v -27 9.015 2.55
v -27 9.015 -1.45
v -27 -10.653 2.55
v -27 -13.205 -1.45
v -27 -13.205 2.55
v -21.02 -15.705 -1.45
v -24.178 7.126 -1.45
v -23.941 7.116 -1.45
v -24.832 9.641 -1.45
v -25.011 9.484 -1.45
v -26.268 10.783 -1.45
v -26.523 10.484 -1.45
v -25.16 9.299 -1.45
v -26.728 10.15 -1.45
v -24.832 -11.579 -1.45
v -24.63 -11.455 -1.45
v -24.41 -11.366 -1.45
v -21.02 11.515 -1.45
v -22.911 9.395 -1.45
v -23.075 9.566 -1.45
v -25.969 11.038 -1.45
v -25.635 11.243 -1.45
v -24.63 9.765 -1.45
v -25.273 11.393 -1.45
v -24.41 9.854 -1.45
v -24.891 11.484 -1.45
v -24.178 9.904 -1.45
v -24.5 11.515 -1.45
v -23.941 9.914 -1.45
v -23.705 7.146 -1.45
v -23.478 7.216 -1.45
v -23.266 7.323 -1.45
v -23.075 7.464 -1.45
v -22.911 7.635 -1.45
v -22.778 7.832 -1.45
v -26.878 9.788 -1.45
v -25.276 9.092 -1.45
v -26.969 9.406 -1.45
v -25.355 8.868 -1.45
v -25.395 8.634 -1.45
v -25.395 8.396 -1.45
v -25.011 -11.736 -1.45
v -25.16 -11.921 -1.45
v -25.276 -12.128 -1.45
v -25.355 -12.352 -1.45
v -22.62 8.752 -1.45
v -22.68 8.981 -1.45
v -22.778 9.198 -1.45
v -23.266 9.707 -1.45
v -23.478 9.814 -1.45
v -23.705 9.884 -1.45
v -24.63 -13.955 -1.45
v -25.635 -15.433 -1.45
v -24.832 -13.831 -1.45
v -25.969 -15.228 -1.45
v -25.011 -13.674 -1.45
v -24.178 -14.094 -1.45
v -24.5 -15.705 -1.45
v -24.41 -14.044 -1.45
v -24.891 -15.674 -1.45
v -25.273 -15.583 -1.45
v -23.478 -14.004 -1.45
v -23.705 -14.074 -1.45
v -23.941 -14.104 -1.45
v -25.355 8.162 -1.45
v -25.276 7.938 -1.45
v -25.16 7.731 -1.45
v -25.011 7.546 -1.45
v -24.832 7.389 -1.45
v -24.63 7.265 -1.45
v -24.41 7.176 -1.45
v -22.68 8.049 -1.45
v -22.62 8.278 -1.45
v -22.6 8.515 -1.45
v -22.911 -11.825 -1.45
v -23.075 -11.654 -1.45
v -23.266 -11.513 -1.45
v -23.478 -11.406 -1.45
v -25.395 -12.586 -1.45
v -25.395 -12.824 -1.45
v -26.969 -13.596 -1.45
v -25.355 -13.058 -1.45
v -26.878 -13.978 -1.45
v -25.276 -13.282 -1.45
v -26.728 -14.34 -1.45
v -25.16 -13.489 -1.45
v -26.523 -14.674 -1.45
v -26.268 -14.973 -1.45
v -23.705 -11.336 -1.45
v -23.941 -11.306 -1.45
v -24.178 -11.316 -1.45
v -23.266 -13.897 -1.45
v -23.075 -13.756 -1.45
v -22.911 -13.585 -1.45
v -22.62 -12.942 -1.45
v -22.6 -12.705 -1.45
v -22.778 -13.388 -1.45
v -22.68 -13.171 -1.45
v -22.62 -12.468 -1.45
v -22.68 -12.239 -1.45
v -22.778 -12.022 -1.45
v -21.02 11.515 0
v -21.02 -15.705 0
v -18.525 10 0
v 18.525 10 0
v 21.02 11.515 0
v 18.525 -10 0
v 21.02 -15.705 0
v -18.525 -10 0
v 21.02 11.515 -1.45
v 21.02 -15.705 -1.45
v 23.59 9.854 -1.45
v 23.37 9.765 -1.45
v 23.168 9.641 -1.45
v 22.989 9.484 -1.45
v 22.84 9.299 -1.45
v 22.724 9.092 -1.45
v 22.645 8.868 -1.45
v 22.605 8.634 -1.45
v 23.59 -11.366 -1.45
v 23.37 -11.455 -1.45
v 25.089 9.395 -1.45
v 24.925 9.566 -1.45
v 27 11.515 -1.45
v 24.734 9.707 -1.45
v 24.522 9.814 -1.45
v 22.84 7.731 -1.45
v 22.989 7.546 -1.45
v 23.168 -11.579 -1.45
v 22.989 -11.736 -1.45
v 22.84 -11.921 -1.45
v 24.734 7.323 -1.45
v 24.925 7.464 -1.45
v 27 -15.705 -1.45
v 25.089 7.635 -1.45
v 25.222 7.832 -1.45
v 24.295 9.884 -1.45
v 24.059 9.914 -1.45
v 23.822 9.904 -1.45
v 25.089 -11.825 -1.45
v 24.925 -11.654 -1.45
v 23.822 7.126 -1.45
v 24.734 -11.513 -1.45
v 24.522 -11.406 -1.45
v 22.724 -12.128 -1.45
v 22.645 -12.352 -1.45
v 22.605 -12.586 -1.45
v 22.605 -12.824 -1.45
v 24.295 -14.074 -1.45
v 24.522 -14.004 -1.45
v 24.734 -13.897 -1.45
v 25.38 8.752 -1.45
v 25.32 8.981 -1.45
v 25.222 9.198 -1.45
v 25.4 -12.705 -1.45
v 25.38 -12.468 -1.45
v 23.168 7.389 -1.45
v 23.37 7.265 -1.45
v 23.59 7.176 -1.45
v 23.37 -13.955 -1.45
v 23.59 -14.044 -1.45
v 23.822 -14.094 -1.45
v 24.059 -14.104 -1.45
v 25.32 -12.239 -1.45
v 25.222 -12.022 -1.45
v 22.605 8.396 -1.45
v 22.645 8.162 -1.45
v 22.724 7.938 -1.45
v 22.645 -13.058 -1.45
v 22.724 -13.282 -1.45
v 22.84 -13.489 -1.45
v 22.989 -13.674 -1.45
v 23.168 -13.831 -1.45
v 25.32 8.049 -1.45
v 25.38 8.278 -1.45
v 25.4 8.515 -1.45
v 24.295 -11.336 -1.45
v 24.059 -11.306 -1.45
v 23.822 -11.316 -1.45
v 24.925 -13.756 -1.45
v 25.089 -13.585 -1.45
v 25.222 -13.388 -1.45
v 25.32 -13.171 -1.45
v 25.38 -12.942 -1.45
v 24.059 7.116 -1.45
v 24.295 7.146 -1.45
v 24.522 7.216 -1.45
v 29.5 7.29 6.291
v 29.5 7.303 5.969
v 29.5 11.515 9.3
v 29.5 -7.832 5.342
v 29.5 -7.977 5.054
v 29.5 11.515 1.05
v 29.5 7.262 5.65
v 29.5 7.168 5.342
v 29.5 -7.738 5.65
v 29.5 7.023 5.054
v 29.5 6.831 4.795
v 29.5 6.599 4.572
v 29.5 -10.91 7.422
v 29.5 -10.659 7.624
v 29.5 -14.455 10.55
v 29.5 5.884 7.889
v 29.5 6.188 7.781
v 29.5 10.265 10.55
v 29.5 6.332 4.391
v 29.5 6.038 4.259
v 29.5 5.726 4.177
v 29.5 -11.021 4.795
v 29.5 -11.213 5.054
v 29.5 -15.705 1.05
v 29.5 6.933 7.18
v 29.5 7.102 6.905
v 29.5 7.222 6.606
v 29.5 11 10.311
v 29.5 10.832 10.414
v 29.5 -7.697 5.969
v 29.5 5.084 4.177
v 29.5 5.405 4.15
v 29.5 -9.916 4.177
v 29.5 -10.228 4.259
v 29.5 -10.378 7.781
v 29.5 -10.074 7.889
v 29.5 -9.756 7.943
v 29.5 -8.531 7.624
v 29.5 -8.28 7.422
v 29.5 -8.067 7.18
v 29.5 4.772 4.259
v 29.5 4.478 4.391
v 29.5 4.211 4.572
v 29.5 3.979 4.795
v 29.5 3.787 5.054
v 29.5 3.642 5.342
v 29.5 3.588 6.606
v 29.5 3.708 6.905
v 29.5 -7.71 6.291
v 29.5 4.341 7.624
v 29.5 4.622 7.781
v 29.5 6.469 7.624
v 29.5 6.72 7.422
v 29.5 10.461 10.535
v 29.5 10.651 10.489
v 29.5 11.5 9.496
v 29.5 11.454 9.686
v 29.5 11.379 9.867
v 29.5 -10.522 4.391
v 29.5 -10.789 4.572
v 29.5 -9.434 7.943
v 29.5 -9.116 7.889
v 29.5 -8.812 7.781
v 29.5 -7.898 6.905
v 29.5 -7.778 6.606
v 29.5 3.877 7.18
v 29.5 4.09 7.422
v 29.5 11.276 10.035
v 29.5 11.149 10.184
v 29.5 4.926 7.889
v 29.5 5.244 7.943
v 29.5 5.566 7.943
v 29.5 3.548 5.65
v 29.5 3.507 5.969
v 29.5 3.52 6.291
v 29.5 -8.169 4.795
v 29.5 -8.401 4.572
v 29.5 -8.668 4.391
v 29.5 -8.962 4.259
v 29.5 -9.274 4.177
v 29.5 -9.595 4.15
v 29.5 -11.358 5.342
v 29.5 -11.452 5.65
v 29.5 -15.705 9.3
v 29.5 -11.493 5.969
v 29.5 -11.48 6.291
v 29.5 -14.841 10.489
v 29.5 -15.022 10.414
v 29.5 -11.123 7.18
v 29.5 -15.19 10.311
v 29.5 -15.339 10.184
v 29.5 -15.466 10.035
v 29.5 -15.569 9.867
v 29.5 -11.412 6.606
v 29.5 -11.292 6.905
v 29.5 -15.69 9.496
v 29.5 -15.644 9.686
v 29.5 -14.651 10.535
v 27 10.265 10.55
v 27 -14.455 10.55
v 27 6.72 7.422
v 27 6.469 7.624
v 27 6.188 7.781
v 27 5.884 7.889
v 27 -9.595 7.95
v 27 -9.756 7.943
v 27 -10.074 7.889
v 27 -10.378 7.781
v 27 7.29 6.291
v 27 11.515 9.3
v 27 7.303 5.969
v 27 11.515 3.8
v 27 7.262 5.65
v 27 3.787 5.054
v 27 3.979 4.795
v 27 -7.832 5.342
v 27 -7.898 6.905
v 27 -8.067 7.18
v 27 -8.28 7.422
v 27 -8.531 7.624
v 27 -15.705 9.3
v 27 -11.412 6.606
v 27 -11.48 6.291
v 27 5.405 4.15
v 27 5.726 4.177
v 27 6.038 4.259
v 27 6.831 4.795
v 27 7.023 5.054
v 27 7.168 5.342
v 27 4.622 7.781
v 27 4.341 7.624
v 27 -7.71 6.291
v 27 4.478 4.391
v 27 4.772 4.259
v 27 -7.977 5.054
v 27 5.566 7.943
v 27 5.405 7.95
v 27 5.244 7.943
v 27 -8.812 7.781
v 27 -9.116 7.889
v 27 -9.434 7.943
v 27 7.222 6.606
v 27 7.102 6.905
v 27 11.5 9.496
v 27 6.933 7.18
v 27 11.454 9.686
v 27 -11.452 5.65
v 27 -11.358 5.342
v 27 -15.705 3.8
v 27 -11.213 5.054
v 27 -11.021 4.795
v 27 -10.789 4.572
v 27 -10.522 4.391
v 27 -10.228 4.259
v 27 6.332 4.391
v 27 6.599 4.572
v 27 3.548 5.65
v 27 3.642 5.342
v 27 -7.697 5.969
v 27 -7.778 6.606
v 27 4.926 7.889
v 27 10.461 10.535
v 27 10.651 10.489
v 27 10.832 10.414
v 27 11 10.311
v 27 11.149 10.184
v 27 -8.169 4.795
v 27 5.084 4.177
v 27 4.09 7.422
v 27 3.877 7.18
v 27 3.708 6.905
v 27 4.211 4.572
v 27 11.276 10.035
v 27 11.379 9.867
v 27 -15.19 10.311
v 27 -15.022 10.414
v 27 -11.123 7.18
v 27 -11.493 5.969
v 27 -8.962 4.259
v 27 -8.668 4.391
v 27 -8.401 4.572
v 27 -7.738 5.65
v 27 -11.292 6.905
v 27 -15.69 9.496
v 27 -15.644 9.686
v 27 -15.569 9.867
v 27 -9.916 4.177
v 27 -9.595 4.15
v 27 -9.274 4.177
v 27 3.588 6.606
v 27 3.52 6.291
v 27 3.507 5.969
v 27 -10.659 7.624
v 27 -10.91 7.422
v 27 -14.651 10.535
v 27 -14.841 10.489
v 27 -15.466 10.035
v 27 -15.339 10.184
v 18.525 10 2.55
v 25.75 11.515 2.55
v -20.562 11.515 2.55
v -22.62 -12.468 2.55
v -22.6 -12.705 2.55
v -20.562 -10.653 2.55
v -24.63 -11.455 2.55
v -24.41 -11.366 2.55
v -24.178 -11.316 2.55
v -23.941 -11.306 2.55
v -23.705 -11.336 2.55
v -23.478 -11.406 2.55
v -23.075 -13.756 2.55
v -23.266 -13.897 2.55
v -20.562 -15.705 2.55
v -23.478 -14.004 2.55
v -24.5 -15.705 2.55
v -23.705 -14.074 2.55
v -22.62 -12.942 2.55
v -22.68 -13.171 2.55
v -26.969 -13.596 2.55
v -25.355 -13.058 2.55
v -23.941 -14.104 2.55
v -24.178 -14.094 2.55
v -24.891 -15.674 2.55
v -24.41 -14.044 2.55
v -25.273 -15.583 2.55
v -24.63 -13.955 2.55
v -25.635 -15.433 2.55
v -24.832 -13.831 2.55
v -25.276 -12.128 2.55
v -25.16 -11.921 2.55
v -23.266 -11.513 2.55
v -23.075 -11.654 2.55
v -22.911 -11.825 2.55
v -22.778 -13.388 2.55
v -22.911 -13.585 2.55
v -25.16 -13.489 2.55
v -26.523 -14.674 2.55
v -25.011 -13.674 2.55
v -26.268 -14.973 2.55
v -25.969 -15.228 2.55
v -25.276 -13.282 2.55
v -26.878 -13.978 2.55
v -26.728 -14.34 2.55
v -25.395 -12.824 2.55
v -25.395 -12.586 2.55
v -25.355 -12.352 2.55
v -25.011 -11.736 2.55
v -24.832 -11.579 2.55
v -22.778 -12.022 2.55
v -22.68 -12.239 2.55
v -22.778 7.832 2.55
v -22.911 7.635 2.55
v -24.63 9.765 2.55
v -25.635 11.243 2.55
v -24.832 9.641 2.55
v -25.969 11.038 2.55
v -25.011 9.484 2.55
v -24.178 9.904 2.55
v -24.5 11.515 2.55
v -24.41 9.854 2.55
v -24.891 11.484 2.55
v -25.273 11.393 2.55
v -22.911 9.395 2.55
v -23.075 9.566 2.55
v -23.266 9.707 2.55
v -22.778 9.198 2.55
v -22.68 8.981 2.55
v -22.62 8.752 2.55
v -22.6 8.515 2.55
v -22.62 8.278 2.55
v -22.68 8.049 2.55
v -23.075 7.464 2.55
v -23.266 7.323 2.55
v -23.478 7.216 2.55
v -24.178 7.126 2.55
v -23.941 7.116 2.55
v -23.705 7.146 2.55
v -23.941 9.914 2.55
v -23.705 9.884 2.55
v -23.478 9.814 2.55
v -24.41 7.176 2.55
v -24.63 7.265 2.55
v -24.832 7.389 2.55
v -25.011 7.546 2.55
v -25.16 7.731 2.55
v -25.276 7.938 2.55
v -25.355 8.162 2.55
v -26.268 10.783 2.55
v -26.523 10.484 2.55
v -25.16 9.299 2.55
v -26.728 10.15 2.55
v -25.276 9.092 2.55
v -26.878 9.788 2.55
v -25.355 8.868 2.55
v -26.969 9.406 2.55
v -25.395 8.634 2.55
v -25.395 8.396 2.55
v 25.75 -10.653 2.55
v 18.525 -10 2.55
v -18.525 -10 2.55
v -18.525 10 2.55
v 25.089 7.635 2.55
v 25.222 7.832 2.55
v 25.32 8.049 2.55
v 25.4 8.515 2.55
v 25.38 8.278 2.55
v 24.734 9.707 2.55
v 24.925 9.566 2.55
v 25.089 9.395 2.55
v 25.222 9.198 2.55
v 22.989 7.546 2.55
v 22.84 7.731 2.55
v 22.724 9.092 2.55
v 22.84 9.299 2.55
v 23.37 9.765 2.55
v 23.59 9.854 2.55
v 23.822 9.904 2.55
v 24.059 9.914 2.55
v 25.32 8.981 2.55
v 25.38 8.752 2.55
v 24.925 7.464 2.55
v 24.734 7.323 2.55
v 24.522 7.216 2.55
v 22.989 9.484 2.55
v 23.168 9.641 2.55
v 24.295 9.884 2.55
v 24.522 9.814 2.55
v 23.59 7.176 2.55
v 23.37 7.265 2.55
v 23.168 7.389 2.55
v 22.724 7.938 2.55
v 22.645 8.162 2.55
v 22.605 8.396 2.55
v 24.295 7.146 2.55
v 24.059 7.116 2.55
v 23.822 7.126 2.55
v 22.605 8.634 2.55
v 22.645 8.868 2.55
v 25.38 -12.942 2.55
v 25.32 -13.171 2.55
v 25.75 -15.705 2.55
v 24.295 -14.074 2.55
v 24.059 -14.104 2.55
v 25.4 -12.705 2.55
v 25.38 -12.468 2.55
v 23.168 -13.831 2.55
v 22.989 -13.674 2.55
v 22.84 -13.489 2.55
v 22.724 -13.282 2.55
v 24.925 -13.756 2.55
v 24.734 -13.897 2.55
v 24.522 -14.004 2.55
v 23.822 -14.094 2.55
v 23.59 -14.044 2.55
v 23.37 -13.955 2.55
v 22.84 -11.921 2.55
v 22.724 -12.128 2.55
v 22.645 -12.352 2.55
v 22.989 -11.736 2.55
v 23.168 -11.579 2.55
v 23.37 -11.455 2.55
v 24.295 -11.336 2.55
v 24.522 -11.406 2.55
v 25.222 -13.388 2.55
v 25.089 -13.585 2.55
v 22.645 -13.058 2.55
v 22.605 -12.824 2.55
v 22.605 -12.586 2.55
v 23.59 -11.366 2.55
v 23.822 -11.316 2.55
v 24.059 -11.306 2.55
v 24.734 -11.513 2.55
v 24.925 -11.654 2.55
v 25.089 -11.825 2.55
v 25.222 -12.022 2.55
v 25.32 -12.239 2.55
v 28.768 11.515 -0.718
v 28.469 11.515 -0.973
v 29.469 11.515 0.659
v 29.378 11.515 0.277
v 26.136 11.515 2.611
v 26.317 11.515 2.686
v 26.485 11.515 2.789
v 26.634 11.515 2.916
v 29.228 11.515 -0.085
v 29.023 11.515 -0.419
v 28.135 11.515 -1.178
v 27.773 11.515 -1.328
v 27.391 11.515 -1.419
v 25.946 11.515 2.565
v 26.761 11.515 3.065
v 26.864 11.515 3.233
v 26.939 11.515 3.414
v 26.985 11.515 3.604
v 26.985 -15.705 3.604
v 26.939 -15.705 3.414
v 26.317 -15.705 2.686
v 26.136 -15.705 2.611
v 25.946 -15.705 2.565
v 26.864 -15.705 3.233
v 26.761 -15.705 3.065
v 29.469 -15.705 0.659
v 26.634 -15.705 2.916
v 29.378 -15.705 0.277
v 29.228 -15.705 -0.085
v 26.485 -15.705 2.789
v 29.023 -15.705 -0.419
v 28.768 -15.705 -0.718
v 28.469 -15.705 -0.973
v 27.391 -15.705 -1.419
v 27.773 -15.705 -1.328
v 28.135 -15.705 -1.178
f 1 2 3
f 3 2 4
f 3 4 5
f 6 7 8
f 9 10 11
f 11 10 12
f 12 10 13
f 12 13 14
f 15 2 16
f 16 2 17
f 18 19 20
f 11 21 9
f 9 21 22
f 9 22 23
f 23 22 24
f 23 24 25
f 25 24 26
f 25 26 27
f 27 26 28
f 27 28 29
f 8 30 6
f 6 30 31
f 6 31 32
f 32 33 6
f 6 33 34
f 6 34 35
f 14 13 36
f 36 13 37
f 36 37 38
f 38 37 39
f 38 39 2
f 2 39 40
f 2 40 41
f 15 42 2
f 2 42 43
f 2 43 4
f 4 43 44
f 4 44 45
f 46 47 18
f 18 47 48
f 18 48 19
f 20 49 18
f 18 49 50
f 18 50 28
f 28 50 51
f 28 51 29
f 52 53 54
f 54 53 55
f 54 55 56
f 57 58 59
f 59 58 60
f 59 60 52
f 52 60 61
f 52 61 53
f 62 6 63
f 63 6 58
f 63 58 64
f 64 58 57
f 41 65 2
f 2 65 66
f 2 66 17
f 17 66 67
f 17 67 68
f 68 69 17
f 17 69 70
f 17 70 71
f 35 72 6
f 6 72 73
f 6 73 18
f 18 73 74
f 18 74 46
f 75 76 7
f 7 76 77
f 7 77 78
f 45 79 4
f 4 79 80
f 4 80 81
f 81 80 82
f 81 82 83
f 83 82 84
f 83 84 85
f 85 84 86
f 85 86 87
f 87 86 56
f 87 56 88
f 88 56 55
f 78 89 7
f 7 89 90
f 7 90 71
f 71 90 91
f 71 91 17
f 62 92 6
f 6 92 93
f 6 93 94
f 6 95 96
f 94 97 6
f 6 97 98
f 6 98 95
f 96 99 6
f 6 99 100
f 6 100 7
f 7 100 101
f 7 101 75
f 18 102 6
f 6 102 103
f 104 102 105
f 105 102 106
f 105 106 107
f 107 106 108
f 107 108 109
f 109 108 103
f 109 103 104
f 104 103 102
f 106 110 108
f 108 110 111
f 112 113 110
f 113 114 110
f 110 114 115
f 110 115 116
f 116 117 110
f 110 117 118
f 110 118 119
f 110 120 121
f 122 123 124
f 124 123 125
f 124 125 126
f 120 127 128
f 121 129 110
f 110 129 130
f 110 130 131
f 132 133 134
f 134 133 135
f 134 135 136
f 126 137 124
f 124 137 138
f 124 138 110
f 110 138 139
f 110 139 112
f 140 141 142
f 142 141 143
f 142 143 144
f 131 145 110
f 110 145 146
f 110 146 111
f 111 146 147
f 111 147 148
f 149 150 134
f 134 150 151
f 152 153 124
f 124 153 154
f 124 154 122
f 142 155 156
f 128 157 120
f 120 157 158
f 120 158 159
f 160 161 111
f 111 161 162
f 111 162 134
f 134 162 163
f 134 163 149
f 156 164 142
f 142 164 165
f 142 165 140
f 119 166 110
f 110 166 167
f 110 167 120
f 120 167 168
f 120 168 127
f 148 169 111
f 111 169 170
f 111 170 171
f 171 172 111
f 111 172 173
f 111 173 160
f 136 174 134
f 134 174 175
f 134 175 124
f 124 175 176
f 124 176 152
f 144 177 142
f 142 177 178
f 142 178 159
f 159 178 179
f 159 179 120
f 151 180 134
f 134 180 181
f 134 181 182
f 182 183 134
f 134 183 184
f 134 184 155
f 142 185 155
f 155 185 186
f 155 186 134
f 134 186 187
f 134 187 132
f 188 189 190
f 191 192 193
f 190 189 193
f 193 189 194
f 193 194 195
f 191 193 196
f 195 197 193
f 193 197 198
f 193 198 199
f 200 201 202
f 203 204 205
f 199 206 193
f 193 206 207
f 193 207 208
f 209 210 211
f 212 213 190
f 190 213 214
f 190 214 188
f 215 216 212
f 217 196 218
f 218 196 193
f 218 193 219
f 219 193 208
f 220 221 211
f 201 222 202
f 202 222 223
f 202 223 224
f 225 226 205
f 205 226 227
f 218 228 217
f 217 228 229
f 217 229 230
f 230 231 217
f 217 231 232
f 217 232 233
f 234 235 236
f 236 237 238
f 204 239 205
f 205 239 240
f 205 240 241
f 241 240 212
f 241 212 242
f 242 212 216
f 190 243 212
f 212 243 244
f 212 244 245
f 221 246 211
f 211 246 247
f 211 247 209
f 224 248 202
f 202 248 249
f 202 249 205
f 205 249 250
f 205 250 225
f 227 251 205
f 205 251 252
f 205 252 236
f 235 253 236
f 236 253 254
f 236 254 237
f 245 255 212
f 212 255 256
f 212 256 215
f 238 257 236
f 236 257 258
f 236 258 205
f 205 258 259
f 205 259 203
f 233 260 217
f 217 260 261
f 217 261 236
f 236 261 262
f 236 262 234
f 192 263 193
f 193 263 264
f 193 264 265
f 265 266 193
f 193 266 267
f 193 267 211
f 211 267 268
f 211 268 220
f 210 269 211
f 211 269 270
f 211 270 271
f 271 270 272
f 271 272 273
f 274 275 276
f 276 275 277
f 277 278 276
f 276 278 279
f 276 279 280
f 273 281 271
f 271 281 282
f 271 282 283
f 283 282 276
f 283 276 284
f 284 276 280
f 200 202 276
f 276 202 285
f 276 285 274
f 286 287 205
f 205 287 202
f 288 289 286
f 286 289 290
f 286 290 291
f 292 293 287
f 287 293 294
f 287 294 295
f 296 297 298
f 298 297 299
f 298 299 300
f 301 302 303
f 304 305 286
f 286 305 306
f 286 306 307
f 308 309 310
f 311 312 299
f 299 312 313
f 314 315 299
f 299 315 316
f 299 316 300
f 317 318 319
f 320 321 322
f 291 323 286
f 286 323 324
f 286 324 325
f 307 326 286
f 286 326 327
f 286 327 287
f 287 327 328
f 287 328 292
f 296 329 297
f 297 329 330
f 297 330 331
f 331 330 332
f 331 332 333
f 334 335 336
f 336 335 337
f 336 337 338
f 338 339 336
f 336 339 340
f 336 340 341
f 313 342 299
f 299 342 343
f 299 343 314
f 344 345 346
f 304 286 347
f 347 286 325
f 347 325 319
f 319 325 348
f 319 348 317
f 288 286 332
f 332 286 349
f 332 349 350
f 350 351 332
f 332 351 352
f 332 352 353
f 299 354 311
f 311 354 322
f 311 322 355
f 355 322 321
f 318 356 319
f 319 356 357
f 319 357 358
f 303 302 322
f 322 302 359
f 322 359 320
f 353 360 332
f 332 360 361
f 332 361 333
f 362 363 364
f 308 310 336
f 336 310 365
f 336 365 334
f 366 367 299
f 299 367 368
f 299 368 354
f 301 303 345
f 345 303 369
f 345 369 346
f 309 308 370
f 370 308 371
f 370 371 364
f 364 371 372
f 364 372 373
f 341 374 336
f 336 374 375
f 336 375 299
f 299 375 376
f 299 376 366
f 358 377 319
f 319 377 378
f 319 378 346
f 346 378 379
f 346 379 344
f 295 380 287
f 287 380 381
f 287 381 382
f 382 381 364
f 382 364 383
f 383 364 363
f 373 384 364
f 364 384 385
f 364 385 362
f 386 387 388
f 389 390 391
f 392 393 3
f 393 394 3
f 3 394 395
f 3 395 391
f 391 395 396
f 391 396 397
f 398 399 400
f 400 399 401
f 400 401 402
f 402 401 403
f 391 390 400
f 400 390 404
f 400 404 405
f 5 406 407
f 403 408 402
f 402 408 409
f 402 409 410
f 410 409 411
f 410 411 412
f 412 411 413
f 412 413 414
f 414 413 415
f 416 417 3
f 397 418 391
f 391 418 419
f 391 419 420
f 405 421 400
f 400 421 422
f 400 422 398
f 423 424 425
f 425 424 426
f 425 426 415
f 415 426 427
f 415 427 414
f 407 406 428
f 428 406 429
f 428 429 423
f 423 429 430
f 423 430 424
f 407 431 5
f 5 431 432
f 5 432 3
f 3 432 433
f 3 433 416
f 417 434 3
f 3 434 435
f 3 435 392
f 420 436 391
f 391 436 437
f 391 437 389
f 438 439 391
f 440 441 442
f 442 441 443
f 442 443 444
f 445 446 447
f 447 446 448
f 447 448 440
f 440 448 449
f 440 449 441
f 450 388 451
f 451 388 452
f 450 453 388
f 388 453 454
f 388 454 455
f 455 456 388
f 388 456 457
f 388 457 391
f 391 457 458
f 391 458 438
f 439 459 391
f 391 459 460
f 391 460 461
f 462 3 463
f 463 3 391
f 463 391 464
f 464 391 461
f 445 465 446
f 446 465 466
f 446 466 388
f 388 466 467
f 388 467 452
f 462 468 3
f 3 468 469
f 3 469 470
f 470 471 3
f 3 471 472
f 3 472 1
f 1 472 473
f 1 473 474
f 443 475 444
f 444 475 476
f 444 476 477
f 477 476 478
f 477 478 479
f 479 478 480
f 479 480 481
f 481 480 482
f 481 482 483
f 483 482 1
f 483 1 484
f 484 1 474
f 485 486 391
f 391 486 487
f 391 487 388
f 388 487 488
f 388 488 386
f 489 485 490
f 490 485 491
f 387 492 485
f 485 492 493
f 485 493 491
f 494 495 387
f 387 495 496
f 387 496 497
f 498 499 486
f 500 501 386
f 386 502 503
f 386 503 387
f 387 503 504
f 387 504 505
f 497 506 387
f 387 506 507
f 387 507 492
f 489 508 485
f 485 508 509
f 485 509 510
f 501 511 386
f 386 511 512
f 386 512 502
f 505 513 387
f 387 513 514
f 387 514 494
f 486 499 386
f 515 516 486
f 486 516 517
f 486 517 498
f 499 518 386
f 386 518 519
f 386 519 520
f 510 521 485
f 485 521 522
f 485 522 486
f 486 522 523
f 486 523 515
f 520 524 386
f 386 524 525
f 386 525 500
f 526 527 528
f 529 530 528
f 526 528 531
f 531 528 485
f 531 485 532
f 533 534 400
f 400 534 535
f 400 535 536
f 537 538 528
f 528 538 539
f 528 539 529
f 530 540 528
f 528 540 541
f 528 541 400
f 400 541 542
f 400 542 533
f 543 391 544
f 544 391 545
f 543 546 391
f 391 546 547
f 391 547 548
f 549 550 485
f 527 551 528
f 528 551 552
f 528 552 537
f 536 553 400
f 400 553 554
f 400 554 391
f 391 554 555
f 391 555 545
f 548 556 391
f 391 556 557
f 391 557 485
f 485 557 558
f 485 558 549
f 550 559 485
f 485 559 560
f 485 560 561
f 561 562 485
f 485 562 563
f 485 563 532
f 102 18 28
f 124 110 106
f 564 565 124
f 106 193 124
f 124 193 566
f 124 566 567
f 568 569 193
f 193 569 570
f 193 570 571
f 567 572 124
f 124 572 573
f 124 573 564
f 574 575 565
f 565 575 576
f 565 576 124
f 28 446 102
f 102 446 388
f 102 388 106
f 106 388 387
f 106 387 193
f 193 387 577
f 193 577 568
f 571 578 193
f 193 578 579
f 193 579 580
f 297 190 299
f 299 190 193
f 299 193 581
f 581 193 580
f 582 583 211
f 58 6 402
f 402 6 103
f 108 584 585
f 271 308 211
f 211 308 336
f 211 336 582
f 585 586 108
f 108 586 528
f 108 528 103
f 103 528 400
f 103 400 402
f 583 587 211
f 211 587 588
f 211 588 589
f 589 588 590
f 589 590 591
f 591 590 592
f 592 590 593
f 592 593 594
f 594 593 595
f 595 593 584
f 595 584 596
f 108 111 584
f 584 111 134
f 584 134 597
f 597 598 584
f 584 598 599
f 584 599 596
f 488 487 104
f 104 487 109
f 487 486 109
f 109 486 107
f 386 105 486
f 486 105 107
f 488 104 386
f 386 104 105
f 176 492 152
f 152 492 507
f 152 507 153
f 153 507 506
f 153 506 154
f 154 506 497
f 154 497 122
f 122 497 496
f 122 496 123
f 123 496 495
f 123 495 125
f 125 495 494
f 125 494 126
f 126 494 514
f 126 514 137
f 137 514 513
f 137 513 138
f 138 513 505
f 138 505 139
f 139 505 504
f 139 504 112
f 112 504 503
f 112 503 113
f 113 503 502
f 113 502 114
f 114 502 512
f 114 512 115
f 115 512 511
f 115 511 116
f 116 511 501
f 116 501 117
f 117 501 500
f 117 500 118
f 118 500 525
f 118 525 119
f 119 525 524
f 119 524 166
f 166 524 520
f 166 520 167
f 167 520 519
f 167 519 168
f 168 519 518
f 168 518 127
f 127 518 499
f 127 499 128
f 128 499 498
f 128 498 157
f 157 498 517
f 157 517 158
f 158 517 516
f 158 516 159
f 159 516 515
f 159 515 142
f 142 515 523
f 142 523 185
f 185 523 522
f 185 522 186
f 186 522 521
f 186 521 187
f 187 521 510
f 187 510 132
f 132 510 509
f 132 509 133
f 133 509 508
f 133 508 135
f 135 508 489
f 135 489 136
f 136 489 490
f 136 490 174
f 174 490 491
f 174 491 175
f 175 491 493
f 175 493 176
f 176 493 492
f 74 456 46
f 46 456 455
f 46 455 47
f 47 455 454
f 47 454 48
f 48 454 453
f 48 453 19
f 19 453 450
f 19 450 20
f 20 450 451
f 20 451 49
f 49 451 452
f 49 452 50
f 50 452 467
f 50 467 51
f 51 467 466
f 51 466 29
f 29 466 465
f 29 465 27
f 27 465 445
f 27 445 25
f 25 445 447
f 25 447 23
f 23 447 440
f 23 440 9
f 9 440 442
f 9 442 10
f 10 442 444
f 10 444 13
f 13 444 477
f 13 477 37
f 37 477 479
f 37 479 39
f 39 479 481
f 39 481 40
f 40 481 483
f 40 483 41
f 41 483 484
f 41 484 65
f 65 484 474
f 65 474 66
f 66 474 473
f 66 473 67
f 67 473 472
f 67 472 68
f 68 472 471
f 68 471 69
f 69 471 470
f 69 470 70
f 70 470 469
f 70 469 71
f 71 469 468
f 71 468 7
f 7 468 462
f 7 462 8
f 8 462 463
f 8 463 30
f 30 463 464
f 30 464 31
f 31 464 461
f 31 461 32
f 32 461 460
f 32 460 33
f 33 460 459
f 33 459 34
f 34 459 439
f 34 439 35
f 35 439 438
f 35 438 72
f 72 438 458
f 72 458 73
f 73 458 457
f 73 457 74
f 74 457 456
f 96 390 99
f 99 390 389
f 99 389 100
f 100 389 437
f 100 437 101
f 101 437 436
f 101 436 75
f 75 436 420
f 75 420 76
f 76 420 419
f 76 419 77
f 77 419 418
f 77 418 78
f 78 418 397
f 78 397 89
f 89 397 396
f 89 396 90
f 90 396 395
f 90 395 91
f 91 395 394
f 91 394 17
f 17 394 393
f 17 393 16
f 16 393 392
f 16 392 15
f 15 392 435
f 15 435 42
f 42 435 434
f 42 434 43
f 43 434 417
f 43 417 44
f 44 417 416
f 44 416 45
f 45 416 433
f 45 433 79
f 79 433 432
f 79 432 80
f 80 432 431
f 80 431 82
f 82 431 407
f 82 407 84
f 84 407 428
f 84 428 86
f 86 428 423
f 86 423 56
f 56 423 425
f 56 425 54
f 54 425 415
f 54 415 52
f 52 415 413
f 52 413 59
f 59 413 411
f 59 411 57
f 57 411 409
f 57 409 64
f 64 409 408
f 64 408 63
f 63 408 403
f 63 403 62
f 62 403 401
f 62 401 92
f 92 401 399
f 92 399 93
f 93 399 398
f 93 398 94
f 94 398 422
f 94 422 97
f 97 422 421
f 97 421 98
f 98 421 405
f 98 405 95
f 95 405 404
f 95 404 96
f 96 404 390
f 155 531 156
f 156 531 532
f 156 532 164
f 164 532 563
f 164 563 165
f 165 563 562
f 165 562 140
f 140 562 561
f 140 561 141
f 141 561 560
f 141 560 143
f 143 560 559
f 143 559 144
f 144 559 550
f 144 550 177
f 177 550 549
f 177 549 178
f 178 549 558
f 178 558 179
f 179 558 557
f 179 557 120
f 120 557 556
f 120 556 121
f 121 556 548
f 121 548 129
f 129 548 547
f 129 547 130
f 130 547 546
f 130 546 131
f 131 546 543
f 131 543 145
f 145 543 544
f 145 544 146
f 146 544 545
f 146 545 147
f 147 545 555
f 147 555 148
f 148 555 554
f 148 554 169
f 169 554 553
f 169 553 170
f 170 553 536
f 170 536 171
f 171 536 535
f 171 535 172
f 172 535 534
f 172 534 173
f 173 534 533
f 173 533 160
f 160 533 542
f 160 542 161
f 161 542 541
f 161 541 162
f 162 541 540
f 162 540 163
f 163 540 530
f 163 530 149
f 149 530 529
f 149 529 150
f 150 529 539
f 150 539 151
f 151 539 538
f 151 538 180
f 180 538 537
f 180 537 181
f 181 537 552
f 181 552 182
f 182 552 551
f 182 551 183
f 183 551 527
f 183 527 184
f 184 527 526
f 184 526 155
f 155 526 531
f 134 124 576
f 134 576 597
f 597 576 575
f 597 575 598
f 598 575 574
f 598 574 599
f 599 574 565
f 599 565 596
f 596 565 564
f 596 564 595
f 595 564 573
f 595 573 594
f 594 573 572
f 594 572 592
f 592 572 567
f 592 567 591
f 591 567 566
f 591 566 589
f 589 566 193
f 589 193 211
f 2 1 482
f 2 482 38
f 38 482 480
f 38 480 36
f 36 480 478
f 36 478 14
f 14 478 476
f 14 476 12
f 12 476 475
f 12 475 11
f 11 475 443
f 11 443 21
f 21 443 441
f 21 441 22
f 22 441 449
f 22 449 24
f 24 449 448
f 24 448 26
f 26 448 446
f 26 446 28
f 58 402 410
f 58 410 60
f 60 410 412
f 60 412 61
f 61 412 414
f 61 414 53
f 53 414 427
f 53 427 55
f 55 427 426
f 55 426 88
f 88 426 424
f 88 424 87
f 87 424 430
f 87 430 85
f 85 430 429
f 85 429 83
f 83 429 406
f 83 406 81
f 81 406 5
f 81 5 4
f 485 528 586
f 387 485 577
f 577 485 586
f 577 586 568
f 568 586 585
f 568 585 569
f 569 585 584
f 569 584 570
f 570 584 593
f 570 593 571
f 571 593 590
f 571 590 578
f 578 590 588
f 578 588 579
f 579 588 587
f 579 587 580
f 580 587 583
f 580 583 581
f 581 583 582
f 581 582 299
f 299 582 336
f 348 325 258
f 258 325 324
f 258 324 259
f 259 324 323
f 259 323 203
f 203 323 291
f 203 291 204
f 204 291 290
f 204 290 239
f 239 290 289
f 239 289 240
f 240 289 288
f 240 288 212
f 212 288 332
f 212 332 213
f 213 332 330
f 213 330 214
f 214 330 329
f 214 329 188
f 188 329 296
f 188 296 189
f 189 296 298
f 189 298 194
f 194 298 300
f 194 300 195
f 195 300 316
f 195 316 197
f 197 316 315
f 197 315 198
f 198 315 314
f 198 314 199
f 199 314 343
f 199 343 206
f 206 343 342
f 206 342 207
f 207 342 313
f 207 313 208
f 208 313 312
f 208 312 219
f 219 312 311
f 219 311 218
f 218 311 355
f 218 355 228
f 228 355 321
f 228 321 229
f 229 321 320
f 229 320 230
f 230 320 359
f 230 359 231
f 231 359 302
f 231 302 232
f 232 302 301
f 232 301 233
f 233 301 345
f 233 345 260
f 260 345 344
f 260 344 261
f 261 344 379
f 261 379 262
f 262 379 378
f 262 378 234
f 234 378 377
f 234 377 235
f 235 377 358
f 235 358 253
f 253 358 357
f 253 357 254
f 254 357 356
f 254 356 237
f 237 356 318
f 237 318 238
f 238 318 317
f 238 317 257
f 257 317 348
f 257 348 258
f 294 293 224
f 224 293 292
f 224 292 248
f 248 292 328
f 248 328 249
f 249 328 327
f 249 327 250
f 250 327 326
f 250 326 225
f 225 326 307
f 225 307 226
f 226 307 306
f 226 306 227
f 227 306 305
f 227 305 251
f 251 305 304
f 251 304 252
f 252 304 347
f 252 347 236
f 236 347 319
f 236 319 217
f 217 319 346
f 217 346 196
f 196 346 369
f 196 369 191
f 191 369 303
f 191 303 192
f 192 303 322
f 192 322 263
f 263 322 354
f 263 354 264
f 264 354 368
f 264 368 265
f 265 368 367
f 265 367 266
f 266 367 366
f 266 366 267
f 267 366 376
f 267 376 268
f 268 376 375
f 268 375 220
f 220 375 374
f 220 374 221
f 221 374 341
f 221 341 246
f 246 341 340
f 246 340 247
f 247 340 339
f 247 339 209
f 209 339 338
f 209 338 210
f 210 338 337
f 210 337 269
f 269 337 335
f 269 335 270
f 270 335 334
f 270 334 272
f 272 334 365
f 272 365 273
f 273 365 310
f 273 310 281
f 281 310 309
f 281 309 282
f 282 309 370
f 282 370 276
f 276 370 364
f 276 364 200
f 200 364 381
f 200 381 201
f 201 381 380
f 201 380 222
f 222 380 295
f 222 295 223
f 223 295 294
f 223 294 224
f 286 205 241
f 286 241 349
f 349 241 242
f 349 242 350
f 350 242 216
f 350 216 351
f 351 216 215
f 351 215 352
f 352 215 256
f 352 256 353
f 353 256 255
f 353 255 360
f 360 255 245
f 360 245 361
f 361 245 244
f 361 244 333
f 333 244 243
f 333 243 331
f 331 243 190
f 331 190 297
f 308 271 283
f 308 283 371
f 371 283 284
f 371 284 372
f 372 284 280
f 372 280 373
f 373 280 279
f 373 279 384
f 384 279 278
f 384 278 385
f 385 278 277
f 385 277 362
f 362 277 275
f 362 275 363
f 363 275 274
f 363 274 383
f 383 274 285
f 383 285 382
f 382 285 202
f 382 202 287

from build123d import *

# Parameters (mm, degrees)
BOSS_EXTRUDE1_DEPTH        = 27.22
CUT_EXTRUDE1_DEPTH         = 36.045677694
CUT_EXTRUDE1_DEPTH_BACK    = 2.5
SKETCH1_W                  = 37.05
SKETCH1_H                  = 20
F_2_8_2_8_DIAMETER_HOLE1_D = 2.8
FILLET3_R                  = 2.5
FILLET4_R                  = 1.25
F_3_8_3_8_DIAMETER_HOLE1_D = 3.8
FILLET5_R                  = 1.25


with BuildPart() as part:
    # Sketch2 → Boss-Extrude1 (new body)
    with BuildSketch(Plane(origin=(0, 11.515, 0), x_dir=(1, 0, 0), z_dir=(0, 1, 0))):
        Polygon((-27, 1.45), (-21.02, 1.45), (-21.02, 0), (21.02, 0), (21.02, 1.45), (29.5, 1.45), (29.5, -10.55), (27, -10.55), (27, -2.55), (-27, -2.55), align=None)
    extrude(amount=-BOSS_EXTRUDE1_DEPTH)

    # Sketch1 → Cut-Extrude1 (cut, two sides: drawn at the far end of the back side and taken through both)
    with BuildSketch(Plane.XY.offset(-CUT_EXTRUDE1_DEPTH_BACK)):
        Rectangle(SKETCH1_W, SKETCH1_H)
    extrude(amount=CUT_EXTRUDE1_DEPTH + CUT_EXTRUDE1_DEPTH_BACK, mode=Mode.SUBTRACT)

    # Ø2.8 (2.8) Diameter Hole1 (through all)
    with Locations(Plane.XY.offset(2.55)):
        with Locations((24, -12.705), (-24, -12.705), (-24, 8.515), (24, 8.515)):
            Hole(F_2_8_2_8_DIAMETER_HOLE1_D / 2)

    # Fillet3
    fillet3_edges = [part.edges().sort_by_distance(p)[0] for p in [
        (-27, 11.515, 0.55),
        (29.5, -2.095, -1.45),
        (-27, -15.705, 0.55),
    ]]
    fillet(fillet3_edges, radius=FILLET3_R)

    # Fillet4
    fillet4_edges = [part.edges().sort_by_distance(p)[0] for p in [
        (27, -2.095, 2.55),
    ]]
    fillet(fillet4_edges, radius=FILLET4_R)

    # Ø3.8 (3.8) Diameter Hole1 (through all)
    with Locations(Plane(origin=(29.5, 0, 0), x_dir=(0, 0, -1), z_dir=(1, 0, 0))):
        with Locations((-6.05, -9.595), (-6.05, 5.405)):
            Hole(F_3_8_3_8_DIAMETER_HOLE1_D / 2)

    # Fillet5
    fillet5_edges = [part.edges().sort_by_distance(p)[0] for p in [
        (28.25, 11.515, 10.55),
        (28.25, -15.705, 10.55),
    ]]
    fillet(fillet5_edges, radius=FILLET5_R)


solid = part.part
